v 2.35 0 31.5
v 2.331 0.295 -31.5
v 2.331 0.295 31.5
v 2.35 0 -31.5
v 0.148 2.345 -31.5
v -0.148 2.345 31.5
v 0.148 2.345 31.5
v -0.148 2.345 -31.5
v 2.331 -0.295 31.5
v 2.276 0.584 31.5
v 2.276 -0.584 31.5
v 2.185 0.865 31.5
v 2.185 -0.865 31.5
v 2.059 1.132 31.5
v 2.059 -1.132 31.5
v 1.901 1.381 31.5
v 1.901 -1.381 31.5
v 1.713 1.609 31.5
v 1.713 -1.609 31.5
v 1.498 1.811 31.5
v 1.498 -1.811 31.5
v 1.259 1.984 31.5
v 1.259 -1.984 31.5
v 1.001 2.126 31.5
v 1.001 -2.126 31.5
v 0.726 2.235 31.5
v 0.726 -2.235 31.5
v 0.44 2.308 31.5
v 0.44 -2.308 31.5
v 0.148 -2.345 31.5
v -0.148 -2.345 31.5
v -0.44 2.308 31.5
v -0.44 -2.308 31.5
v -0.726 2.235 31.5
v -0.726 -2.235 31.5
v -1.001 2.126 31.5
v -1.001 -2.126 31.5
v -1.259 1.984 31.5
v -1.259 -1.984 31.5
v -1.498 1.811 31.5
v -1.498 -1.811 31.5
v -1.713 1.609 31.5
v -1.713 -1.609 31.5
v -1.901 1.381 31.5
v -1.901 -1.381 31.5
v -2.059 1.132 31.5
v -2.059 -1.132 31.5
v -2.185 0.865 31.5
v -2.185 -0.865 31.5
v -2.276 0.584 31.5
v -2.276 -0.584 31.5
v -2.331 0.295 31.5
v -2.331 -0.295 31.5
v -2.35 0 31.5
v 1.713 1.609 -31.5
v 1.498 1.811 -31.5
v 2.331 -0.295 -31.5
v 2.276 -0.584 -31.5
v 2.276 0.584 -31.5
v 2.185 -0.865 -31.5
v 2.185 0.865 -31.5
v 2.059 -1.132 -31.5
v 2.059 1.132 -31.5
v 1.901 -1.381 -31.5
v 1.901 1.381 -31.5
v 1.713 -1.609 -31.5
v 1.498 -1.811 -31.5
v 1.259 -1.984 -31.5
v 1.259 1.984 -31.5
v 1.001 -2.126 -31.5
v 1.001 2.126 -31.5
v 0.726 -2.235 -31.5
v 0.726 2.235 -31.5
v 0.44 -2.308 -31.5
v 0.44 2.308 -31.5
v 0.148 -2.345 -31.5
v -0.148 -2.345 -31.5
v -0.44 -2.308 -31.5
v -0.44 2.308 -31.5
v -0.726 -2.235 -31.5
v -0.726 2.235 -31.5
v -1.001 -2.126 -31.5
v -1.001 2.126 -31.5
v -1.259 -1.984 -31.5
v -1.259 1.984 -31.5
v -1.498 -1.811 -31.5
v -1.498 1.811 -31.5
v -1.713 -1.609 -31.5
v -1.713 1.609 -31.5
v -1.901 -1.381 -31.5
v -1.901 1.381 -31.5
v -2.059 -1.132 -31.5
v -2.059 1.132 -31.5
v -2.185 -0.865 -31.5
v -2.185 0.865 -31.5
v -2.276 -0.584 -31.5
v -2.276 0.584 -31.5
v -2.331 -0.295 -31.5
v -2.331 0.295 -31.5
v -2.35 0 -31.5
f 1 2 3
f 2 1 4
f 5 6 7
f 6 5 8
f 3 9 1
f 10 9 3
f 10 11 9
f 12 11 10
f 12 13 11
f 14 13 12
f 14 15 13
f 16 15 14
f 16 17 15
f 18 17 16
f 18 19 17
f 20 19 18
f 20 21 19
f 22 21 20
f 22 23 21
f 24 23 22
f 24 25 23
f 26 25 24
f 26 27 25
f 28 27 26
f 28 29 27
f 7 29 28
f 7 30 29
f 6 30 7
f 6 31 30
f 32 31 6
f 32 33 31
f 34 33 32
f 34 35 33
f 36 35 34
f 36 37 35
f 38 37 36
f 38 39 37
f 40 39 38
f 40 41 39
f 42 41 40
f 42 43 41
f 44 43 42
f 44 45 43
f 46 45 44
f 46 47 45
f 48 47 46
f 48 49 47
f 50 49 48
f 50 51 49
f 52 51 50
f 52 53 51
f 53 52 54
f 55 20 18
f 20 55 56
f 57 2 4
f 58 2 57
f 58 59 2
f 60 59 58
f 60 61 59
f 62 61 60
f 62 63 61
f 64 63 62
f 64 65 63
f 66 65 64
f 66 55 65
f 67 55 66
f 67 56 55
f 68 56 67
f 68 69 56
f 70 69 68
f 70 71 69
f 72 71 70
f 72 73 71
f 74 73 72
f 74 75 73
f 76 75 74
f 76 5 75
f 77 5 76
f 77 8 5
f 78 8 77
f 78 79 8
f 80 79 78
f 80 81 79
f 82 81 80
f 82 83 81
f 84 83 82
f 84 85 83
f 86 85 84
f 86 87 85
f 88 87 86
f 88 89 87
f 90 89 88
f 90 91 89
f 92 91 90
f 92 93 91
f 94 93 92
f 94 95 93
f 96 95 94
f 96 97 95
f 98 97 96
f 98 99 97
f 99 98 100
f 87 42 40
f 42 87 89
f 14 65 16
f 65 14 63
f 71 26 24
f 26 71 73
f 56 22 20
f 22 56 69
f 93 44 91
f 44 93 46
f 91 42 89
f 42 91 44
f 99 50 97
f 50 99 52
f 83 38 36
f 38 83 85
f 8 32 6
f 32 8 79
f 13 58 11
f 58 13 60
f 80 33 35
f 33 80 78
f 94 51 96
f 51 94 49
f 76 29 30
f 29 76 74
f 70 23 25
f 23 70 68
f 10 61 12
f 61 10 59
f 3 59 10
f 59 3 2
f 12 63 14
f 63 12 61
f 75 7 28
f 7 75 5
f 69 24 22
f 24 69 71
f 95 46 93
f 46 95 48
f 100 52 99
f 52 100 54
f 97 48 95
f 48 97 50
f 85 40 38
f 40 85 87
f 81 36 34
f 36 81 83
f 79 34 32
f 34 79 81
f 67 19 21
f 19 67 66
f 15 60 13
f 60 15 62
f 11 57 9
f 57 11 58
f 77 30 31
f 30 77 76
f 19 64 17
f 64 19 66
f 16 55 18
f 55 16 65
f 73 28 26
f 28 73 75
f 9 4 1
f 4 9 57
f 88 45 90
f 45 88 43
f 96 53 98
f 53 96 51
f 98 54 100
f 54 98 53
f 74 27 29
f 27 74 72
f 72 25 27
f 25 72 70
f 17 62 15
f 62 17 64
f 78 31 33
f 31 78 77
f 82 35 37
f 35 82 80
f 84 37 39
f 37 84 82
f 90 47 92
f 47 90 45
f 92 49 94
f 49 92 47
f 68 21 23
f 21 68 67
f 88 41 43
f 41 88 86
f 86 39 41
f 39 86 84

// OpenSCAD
$fn = 50;


difference() {
	union() {
		translate(v = [0, 0, -31.5000000000]) {
			cylinder(h = 63, r = 2.3500000000);
		}
	}
	union() {
		translate(v = [0, 0, -100.0000000000]) {
			cylinder(h = 200, r = 0);
		}
	}
}
